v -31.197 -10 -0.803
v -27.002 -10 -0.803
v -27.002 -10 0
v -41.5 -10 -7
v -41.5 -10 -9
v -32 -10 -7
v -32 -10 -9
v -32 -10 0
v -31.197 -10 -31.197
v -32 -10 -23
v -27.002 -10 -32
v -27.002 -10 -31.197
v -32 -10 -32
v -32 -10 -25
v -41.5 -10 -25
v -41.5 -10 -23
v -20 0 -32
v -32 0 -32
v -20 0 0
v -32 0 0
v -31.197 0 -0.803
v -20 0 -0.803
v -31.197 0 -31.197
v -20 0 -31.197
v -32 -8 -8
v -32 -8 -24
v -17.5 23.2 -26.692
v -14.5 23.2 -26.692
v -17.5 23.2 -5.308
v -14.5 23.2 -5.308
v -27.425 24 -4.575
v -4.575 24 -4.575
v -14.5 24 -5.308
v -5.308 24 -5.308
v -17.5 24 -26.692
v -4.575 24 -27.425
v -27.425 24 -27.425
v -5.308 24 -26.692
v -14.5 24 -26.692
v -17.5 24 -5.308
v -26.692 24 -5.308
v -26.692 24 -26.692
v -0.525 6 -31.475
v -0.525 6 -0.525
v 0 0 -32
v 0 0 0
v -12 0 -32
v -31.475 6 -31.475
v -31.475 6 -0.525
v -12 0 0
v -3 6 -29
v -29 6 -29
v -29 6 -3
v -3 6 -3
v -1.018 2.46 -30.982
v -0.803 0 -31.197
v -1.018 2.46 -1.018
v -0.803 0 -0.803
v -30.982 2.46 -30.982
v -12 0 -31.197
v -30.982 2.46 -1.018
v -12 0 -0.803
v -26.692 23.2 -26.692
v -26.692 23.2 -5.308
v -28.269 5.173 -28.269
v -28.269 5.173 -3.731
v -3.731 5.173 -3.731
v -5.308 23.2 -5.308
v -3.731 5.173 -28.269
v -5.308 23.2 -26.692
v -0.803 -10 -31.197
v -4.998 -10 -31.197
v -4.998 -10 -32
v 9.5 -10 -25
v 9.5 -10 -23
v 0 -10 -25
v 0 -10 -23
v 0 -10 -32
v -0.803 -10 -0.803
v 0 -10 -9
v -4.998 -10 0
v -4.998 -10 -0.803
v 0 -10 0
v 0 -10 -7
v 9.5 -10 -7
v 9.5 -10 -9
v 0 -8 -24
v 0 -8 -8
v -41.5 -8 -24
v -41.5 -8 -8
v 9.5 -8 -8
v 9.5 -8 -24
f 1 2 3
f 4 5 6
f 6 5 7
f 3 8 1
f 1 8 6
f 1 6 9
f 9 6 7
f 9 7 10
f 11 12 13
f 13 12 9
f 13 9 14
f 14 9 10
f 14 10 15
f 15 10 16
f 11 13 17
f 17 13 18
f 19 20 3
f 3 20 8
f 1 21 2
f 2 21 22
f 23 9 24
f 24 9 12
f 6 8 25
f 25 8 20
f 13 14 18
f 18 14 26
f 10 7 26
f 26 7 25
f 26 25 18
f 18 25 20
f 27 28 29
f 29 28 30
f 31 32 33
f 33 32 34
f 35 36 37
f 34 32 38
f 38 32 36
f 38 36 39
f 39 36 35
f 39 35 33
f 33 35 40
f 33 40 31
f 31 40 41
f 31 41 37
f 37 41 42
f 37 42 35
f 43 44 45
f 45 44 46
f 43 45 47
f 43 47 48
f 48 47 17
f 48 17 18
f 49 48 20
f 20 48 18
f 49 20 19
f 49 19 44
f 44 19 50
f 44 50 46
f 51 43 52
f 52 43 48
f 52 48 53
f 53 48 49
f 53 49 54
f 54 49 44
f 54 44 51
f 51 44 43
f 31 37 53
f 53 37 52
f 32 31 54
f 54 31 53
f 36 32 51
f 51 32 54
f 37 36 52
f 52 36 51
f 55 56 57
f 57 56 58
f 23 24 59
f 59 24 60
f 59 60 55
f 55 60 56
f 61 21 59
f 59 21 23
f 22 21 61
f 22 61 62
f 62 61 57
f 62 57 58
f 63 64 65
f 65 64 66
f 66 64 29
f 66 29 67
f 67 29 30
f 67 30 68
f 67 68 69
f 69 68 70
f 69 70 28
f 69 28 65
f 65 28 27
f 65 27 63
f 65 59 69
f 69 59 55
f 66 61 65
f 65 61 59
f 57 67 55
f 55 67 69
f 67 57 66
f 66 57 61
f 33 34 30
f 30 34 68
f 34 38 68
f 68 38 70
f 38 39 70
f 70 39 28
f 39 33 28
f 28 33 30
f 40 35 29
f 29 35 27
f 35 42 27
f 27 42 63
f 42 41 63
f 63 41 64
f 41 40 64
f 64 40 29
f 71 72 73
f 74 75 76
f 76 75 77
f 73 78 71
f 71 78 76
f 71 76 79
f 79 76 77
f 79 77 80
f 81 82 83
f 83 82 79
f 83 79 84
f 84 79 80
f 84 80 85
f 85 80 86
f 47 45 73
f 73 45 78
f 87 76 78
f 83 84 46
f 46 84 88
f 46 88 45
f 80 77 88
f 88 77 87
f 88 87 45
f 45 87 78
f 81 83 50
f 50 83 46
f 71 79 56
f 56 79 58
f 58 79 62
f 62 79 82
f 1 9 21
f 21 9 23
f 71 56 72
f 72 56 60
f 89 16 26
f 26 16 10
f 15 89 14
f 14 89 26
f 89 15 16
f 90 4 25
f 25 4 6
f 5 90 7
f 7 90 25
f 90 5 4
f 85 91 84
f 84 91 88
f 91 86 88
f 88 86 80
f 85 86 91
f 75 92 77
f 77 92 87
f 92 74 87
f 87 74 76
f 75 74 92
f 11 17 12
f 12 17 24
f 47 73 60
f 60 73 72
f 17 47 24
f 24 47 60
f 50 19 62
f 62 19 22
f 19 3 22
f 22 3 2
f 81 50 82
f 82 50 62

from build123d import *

# Parameters (mm, degrees)
SKETCH1_W           = 32
SKETCH1_H           = 32
BOSS_EXTRUDE1_DEPTH = 6
BOSS_EXTRUDE1_TAPER = 5
SKETCH2_W           = 26
SKETCH2_H           = 26
BOSS_EXTRUDE2_DEPTH = 18
BOSS_EXTRUDE2_TAPER = 5
SHELL1_T            = -0.8
CHAMFER1_SIZE       = 2.5
CHAMFER1_SIZE_2     = 2.750157169
SKETCH3_W           = 9.192139117
SKETCH3_H           = 21.384278234
CUT_EXTRUDE1_DEPTH  = 51.855088412
SKETCH4_W           = 32
SKETCH4_H           = 32
SKETCH4_W_2         = 30.39388826
SKETCH4_H_2         = 30.39388826
BOSS_EXTRUDE3_DEPTH = 10
BOSS_EXTRUDE4_DEPTH = 9.5
BOSS_EXTRUDE5_START = -32
BOSS_EXTRUDE5_DEPTH = 9.5
CUT_EXTRUDE2_DEPTH  = 58.638962614


with BuildPart() as part:
    # Sketch1 → Boss-Extrude1 (new body)
    with BuildSketch(Plane(origin=(0, 0, 0), x_dir=(1, 0, 0), z_dir=(0, 1, 0))):
        with Locations((-16, 16)):
            Rectangle(SKETCH1_W, SKETCH1_H)
    extrude(amount=BOSS_EXTRUDE1_DEPTH, taper=BOSS_EXTRUDE1_TAPER)

    # Sketch2 → Boss-Extrude2 (add)
    with BuildSketch(Plane(origin=(0, 6, 0), x_dir=(1, 0, 0), z_dir=(0, 1, 0))):
        with Locations((-16, 16)):
            Rectangle(SKETCH2_W, SKETCH2_H)
    extrude(amount=BOSS_EXTRUDE2_DEPTH, taper=BOSS_EXTRUDE2_TAPER)

    # Shell1
    shell1_openings = [part.faces().sort_by_distance(p)[0] for p in [
        (-16, 0, -16),
    ]]
    offset(amount=SHELL1_T, openings=shell1_openings, kind=Kind.INTERSECTION)

    # Chamfer1
    # the kernel refuses this chamfer: 2.750157169, 2.5 mm, written as the material it adds along each edge
    with BuildSketch(Plane(origin=(5.830274952, 5.2, -1.25799692), x_dir=(0, 0.030161850139926293, -0.9995450278982617), z_dir=(-1, 0, 0))) as chamfer1_piece_1_section:
        Polygon((CHAMFER1_SIZE * 0.999545027898, CHAMFER1_SIZE * 0.0301618501399), (-CHAMFER1_SIZE_2 * 0.117163164513, CHAMFER1_SIZE_2 * 0.993112678869), (0, 0), align=None)
    chamfer1_piece_1 = extrude(amount=43.660549905, mode=Mode.PRIVATE)
    chamfer1_piece_1 = split(chamfer1_piece_1, bisect_by=Plane(origin=(-1.2737044, 5.379537315, -3.779154262), z_dir=(-0.9961946980917455, -0.08715574274765792, 0)), keep=Keep.TOP, mode=Mode.PRIVATE)
    chamfer1_piece_1 = split(chamfer1_piece_1, bisect_by=Plane(origin=(-3.729971497, 5.164641789, -3.779154262), z_dir=(0.9961946980917455, 0.08715574274765821, 0)), keep=Keep.TOP, mode=Mode.PRIVATE)
    chamfer1_piece_1 = split(chamfer1_piece_1, bisect_by=Plane(origin=(-2.501837948, 5.275543614, -3.739674149), z_dir=(0, -0.08715574274765829, -0.9961946980917455)), keep=Keep.TOP, mode=Mode.PRIVATE)
    add(chamfer1_piece_1)
    with BuildSketch(Plane(origin=(5.830274952, 5.2, -1.25799692), x_dir=(0, 0.030161850139926293, -0.9995450278982617), z_dir=(-1, 0, 0))) as chamfer1_piece_2_section:
        Polygon((CHAMFER1_SIZE * 0.999545027898, CHAMFER1_SIZE * 0.0301618501399), (-CHAMFER1_SIZE_2 * 0.117163164513, CHAMFER1_SIZE_2 * 0.993112678869), (0, 0), align=None)
    chamfer1_piece_2 = extrude(amount=43.660549905, mode=Mode.PRIVATE)
    chamfer1_piece_2 = split(chamfer1_piece_2, bisect_by=Plane(origin=(-1.187972058, 4.399612159, -1.99521412), z_dir=(-0.9961946980917455, -0.08715574274765792, 0)), keep=Keep.TOP, mode=Mode.PRIVATE)
    chamfer1_piece_2 = split(chamfer1_piece_2, bisect_by=Plane(origin=(-3.644239154, 4.184716633, -1.99521412), z_dir=(0.9961946980917455, 0.08715574274765821, 0)), keep=Keep.TOP, mode=Mode.PRIVATE)
    chamfer1_piece_2 = split(chamfer1_piece_2, bisect_by=Plane(origin=(-2.416105606, 4.148173113, -3.641042011), z_dir=(0, 0.08715574274765829, 0.9961946980917455)), keep=Keep.TOP, mode=Mode.PRIVATE)
    add(chamfer1_piece_2)
    with BuildSketch(Plane(origin=(5.830274952, 5.2, -1.25799692), x_dir=(0, 0.030161850139926293, -0.9995450278982617), z_dir=(-1, 0, 0))) as chamfer1_piece_3_section:
        Polygon((CHAMFER1_SIZE * 0.999545027898, CHAMFER1_SIZE * 0.0301618501399), (-CHAMFER1_SIZE_2 * 0.117163164513, CHAMFER1_SIZE_2 * 0.993112678869), (0, 0), align=None)
    chamfer1_piece_3 = extrude(amount=43.660549905, mode=Mode.PRIVATE)
    chamfer1_piece_3 = split(chamfer1_piece_3, bisect_by=Plane(origin=(-3.747130429, 5.360769289, -1.993289961), z_dir=(-0.9961946980917455, -0.08715574274765821, 0)), keep=Keep.TOP, mode=Mode.PRIVATE)
    chamfer1_piece_3 = split(chamfer1_piece_3, bisect_by=Plane(origin=(-16, 4.144649452, -3.64073373), z_dir=(0, 0.08715574274765829, 0.9961946980917455)), keep=Keep.TOP, mode=Mode.PRIVATE)
    chamfer1_piece_3 = split(chamfer1_piece_3, bisect_by=Plane(origin=(-28.252869571, 5.360769289, -1.993289961), z_dir=(0.9961946980917455, -0.08715574274765829, 0)), keep=Keep.TOP, mode=Mode.PRIVATE)
    add(chamfer1_piece_3)
    with BuildSketch(Plane(origin=(5.830274952, 5.2, -1.25799692), x_dir=(0, 0.030161850139926293, -0.9995450278982617), z_dir=(-1, 0, 0))) as chamfer1_piece_4_section:
        Polygon((CHAMFER1_SIZE * 0.999545027898, CHAMFER1_SIZE * 0.0301618501399), (-CHAMFER1_SIZE_2 * 0.117163164513, CHAMFER1_SIZE_2 * 0.993112678869), (0, 0), align=None)
    chamfer1_piece_4 = extrude(amount=43.660549905, mode=Mode.PRIVATE)
    chamfer1_piece_4 = split(chamfer1_piece_4, bisect_by=Plane(origin=(-29.498162052, 5.275543614, -3.739674149), z_dir=(0, -0.08715574274765829, -0.9961946980917455)), keep=Keep.TOP, mode=Mode.PRIVATE)
    chamfer1_piece_4 = split(chamfer1_piece_4, bisect_by=Plane(origin=(-28.270028503, 5.164641789, -3.779154262), z_dir=(-0.9961946980917455, 0.08715574274765829, 0)), keep=Keep.TOP, mode=Mode.PRIVATE)
    chamfer1_piece_4 = split(chamfer1_piece_4, bisect_by=Plane(origin=(-30.7262956, 5.379537315, -3.779154262), z_dir=(0.9961946980917455, -0.08715574274765851, 0)), keep=Keep.TOP, mode=Mode.PRIVATE)
    add(chamfer1_piece_4)
    with BuildSketch(Plane(origin=(5.830274952, 5.2, -1.25799692), x_dir=(0, 0.030161850139926293, -0.9995450278982617), z_dir=(-1, 0, 0))) as chamfer1_piece_5_section:
        Polygon((CHAMFER1_SIZE * 0.999545027898, CHAMFER1_SIZE * 0.0301618501399), (-CHAMFER1_SIZE_2 * 0.117163164513, CHAMFER1_SIZE_2 * 0.993112678869), (0, 0), align=None)
    chamfer1_piece_5 = extrude(amount=43.660549905, mode=Mode.PRIVATE)
    chamfer1_piece_5 = split(chamfer1_piece_5, bisect_by=Plane(origin=(-29.583894394, 4.148173113, -3.641042011), z_dir=(0, 0.08715574274765829, 0.9961946980917455)), keep=Keep.TOP, mode=Mode.PRIVATE)
    chamfer1_piece_5 = split(chamfer1_piece_5, bisect_by=Plane(origin=(-28.355760846, 4.184716633, -1.99521412), z_dir=(-0.9961946980917455, 0.08715574274765829, 0)), keep=Keep.TOP, mode=Mode.PRIVATE)
    chamfer1_piece_5 = split(chamfer1_piece_5, bisect_by=Plane(origin=(-30.812027942, 4.399612159, -1.99521412), z_dir=(0.9961946980917455, -0.08715574274765851, 0)), keep=Keep.TOP, mode=Mode.PRIVATE)
    add(chamfer1_piece_5)
    with BuildSketch(Plane(origin=(-30.74200308, 5.2, 5.830274952), x_dir=(0.9995450278982617, 0.030161850139926356, 0), z_dir=(0, 0, -1))) as chamfer1_piece_6_section:
        Polygon((CHAMFER1_SIZE * 0.999545027898, CHAMFER1_SIZE * 0.0301618501399), (-CHAMFER1_SIZE_2 * 0.117163164513, CHAMFER1_SIZE_2 * 0.993112678869), (0, 0), align=None)
    chamfer1_piece_6 = extrude(amount=43.660549905, mode=Mode.PRIVATE)
    chamfer1_piece_6 = split(chamfer1_piece_6, bisect_by=Plane(origin=(-28.220845738, 5.164641789, -3.729971497), z_dir=(0, 0.08715574274765829, 0.9961946980917455)), keep=Keep.TOP, mode=Mode.PRIVATE)
    chamfer1_piece_6 = split(chamfer1_piece_6, bisect_by=Plane(origin=(-28.260325851, 5.275543614, -2.501837948), z_dir=(0.9961946980917455, -0.08715574274765829, 0)), keep=Keep.TOP, mode=Mode.PRIVATE)
    chamfer1_piece_6 = split(chamfer1_piece_6, bisect_by=Plane(origin=(-28.220845738, 5.379537315, -1.2737044), z_dir=(0, -0.08715574274765792, -0.9961946980917455)), keep=Keep.TOP, mode=Mode.PRIVATE)
    add(chamfer1_piece_6)
    with BuildSketch(Plane(origin=(-30.74200308, 5.2, 5.830274952), x_dir=(0.9995450278982617, 0.030161850139926356, 0), z_dir=(0, 0, -1))) as chamfer1_piece_7_section:
        Polygon((CHAMFER1_SIZE * 0.999545027898, CHAMFER1_SIZE * 0.0301618501399), (-CHAMFER1_SIZE_2 * 0.117163164513, CHAMFER1_SIZE_2 * 0.993112678869), (0, 0), align=None)
    chamfer1_piece_7 = extrude(amount=43.660549905, mode=Mode.PRIVATE)
    chamfer1_piece_7 = split(chamfer1_piece_7, bisect_by=Plane(origin=(-30.00478588, 4.184716633, -3.644239154), z_dir=(0, 0.08715574274765829, 0.9961946980917455)), keep=Keep.TOP, mode=Mode.PRIVATE)
    chamfer1_piece_7 = split(chamfer1_piece_7, bisect_by=Plane(origin=(-28.358957989, 4.148173113, -2.416105606), z_dir=(-0.9961946980917455, 0.08715574274765829, 0)), keep=Keep.TOP, mode=Mode.PRIVATE)
    chamfer1_piece_7 = split(chamfer1_piece_7, bisect_by=Plane(origin=(-30.00478588, 4.399612159, -1.187972058), z_dir=(0, -0.08715574274765792, -0.9961946980917455)), keep=Keep.TOP, mode=Mode.PRIVATE)
    add(chamfer1_piece_7)
    with BuildSketch(Plane(origin=(-30.74200308, 5.2, 5.830274952), x_dir=(0.9995450278982617, 0.030161850139926356, 0), z_dir=(0, 0, -1))) as chamfer1_piece_8_section:
        Polygon((CHAMFER1_SIZE * 0.999545027898, CHAMFER1_SIZE * 0.0301618501399), (-CHAMFER1_SIZE_2 * 0.117163164513, CHAMFER1_SIZE_2 * 0.993112678869), (0, 0), align=None)
    chamfer1_piece_8 = extrude(amount=43.660549905, mode=Mode.PRIVATE)
    chamfer1_piece_8 = split(chamfer1_piece_8, bisect_by=Plane(origin=(-30.006710039, 5.360769289, -28.252869571), z_dir=(0, -0.08715574274765829, 0.9961946980917455)), keep=Keep.TOP, mode=Mode.PRIVATE)
    chamfer1_piece_8 = split(chamfer1_piece_8, bisect_by=Plane(origin=(-30.006710039, 5.360769289, -3.747130429), z_dir=(0, -0.08715574274765829, -0.9961946980917455)), keep=Keep.TOP, mode=Mode.PRIVATE)
    chamfer1_piece_8 = split(chamfer1_piece_8, bisect_by=Plane(origin=(-28.35926627, 4.144649452, -16), z_dir=(-0.9961946980917455, 0.08715574274765829, 0)), keep=Keep.TOP, mode=Mode.PRIVATE)
    add(chamfer1_piece_8)
    with BuildSketch(Plane(origin=(-30.74200308, 5.2, 5.830274952), x_dir=(0.9995450278982617, 0.030161850139926356, 0), z_dir=(0, 0, -1))) as chamfer1_piece_9_section:
        Polygon((CHAMFER1_SIZE * 0.999545027898, CHAMFER1_SIZE * 0.0301618501399), (-CHAMFER1_SIZE_2 * 0.117163164513, CHAMFER1_SIZE_2 * 0.993112678869), (0, 0), align=None)
    chamfer1_piece_9 = extrude(amount=43.660549905, mode=Mode.PRIVATE)
    chamfer1_piece_9 = split(chamfer1_piece_9, bisect_by=Plane(origin=(-28.220845738, 5.379537315, -30.7262956), z_dir=(0, -0.08715574274765836, 0.9961946980917455)), keep=Keep.TOP, mode=Mode.PRIVATE)
    chamfer1_piece_9 = split(chamfer1_piece_9, bisect_by=Plane(origin=(-28.220845738, 5.164641789, -28.270028503), z_dir=(0, 0.08715574274765829, -0.9961946980917455)), keep=Keep.TOP, mode=Mode.PRIVATE)
    chamfer1_piece_9 = split(chamfer1_piece_9, bisect_by=Plane(origin=(-28.260325851, 5.275543614, -29.498162052), z_dir=(0.9961946980917455, -0.08715574274765829, 0)), keep=Keep.TOP, mode=Mode.PRIVATE)
    add(chamfer1_piece_9)
    with BuildSketch(Plane(origin=(-30.74200308, 5.2, 5.830274952), x_dir=(0.9995450278982617, 0.030161850139926356, 0), z_dir=(0, 0, -1))) as chamfer1_piece_10_section:
        Polygon((CHAMFER1_SIZE * 0.999545027898, CHAMFER1_SIZE * 0.0301618501399), (-CHAMFER1_SIZE_2 * 0.117163164513, CHAMFER1_SIZE_2 * 0.993112678869), (0, 0), align=None)
    chamfer1_piece_10 = extrude(amount=43.660549905, mode=Mode.PRIVATE)
    chamfer1_piece_10 = split(chamfer1_piece_10, bisect_by=Plane(origin=(-30.00478588, 4.399612159, -30.812027942), z_dir=(0, -0.08715574274765836, 0.9961946980917455)), keep=Keep.TOP, mode=Mode.PRIVATE)
    chamfer1_piece_10 = split(chamfer1_piece_10, bisect_by=Plane(origin=(-30.00478588, 4.184716633, -28.355760846), z_dir=(0, 0.08715574274765829, -0.9961946980917455)), keep=Keep.TOP, mode=Mode.PRIVATE)
    chamfer1_piece_10 = split(chamfer1_piece_10, bisect_by=Plane(origin=(-28.358957989, 4.148173113, -29.583894394), z_dir=(-0.9961946980917455, 0.08715574274765829, 0)), keep=Keep.TOP, mode=Mode.PRIVATE)
    add(chamfer1_piece_10)
    with BuildSketch(Plane(origin=(5.830274952, 5.2, -30.74200308), x_dir=(0, -0.9937112432628153, -0.11197305485280758), z_dir=(-1, 0, 0))) as chamfer1_piece_11_section:
        Polygon((CHAMFER1_SIZE_2 * 0.99968896676, CHAMFER1_SIZE_2 * 0.0249393220908), (-CHAMFER1_SIZE * 0.111973054853, CHAMFER1_SIZE * 0.993711243263), (0, 0), align=None)
    chamfer1_piece_11 = extrude(amount=43.660549905, mode=Mode.PRIVATE)
    chamfer1_piece_11 = split(chamfer1_piece_11, bisect_by=Plane(origin=(-1.187972058, 4.399612159, -30.00478588), z_dir=(-0.9961946980917455, -0.08715574274765792, 0)), keep=Keep.TOP, mode=Mode.PRIVATE)
    chamfer1_piece_11 = split(chamfer1_piece_11, bisect_by=Plane(origin=(-2.416105606, 4.148173113, -28.358957989), z_dir=(0, 0.08715574274765829, -0.9961946980917455)), keep=Keep.TOP, mode=Mode.PRIVATE)
    chamfer1_piece_11 = split(chamfer1_piece_11, bisect_by=Plane(origin=(-3.644239154, 4.184716633, -30.00478588), z_dir=(0.9961946980917455, 0.08715574274765821, 0)), keep=Keep.TOP, mode=Mode.PRIVATE)
    add(chamfer1_piece_11)
    with BuildSketch(Plane(origin=(5.830274952, 5.2, -30.74200308), x_dir=(0, -0.9937112432628153, -0.11197305485280758), z_dir=(-1, 0, 0))) as chamfer1_piece_12_section:
        Polygon((CHAMFER1_SIZE_2 * 0.99968896676, CHAMFER1_SIZE_2 * 0.0249393220908), (-CHAMFER1_SIZE * 0.111973054853, CHAMFER1_SIZE * 0.993711243263), (0, 0), align=None)
    chamfer1_piece_12 = extrude(amount=43.660549905, mode=Mode.PRIVATE)
    chamfer1_piece_12 = split(chamfer1_piece_12, bisect_by=Plane(origin=(-1.2737044, 5.379537315, -28.220845738), z_dir=(-0.9961946980917455, -0.08715574274765792, 0)), keep=Keep.TOP, mode=Mode.PRIVATE)
    chamfer1_piece_12 = split(chamfer1_piece_12, bisect_by=Plane(origin=(-2.501837948, 5.275543614, -28.260325851), z_dir=(0, -0.08715574274765829, 0.9961946980917455)), keep=Keep.TOP, mode=Mode.PRIVATE)
    chamfer1_piece_12 = split(chamfer1_piece_12, bisect_by=Plane(origin=(-3.729971497, 5.164641789, -28.220845738), z_dir=(0.9961946980917455, 0.08715574274765821, 0)), keep=Keep.TOP, mode=Mode.PRIVATE)
    add(chamfer1_piece_12)
    with BuildSketch(Plane(origin=(5.830274952, 5.2, -30.74200308), x_dir=(0, -0.9937112432628153, -0.11197305485280758), z_dir=(-1, 0, 0))) as chamfer1_piece_13_section:
        Polygon((CHAMFER1_SIZE_2 * 0.99968896676, CHAMFER1_SIZE_2 * 0.0249393220908), (-CHAMFER1_SIZE * 0.111973054853, CHAMFER1_SIZE * 0.993711243263), (0, 0), align=None)
    chamfer1_piece_13 = extrude(amount=43.660549905, mode=Mode.PRIVATE)
    chamfer1_piece_13 = split(chamfer1_piece_13, bisect_by=Plane(origin=(-16, 4.144649452, -28.35926627), z_dir=(0, 0.08715574274765829, -0.9961946980917455)), keep=Keep.TOP, mode=Mode.PRIVATE)
    chamfer1_piece_13 = split(chamfer1_piece_13, bisect_by=Plane(origin=(-3.747130429, 5.360769289, -30.006710039), z_dir=(-0.9961946980917455, -0.08715574274765821, 0)), keep=Keep.TOP, mode=Mode.PRIVATE)
    chamfer1_piece_13 = split(chamfer1_piece_13, bisect_by=Plane(origin=(-28.252869571, 5.360769289, -30.006710039), z_dir=(0.9961946980917455, -0.08715574274765829, 0)), keep=Keep.TOP, mode=Mode.PRIVATE)
    add(chamfer1_piece_13)
    with BuildSketch(Plane(origin=(5.830274952, 5.2, -30.74200308), x_dir=(0, -0.9937112432628153, -0.11197305485280758), z_dir=(-1, 0, 0))) as chamfer1_piece_14_section:
        Polygon((CHAMFER1_SIZE_2 * 0.99968896676, CHAMFER1_SIZE_2 * 0.0249393220908), (-CHAMFER1_SIZE * 0.111973054853, CHAMFER1_SIZE * 0.993711243263), (0, 0), align=None)
    chamfer1_piece_14 = extrude(amount=43.660549905, mode=Mode.PRIVATE)
    chamfer1_piece_14 = split(chamfer1_piece_14, bisect_by=Plane(origin=(-30.812027942, 4.399612159, -30.00478588), z_dir=(0.9961946980917455, -0.08715574274765851, 0)), keep=Keep.TOP, mode=Mode.PRIVATE)
    chamfer1_piece_14 = split(chamfer1_piece_14, bisect_by=Plane(origin=(-29.583894394, 4.148173113, -28.358957989), z_dir=(0, 0.08715574274765829, -0.9961946980917455)), keep=Keep.TOP, mode=Mode.PRIVATE)
    chamfer1_piece_14 = split(chamfer1_piece_14, bisect_by=Plane(origin=(-28.355760846, 4.184716633, -30.00478588), z_dir=(-0.9961946980917455, 0.08715574274765829, 0)), keep=Keep.TOP, mode=Mode.PRIVATE)
    add(chamfer1_piece_14)
    with BuildSketch(Plane(origin=(5.830274952, 5.2, -30.74200308), x_dir=(0, -0.9937112432628153, -0.11197305485280758), z_dir=(-1, 0, 0))) as chamfer1_piece_15_section:
        Polygon((CHAMFER1_SIZE_2 * 0.99968896676, CHAMFER1_SIZE_2 * 0.0249393220908), (-CHAMFER1_SIZE * 0.111973054853, CHAMFER1_SIZE * 0.993711243263), (0, 0), align=None)
    chamfer1_piece_15 = extrude(amount=43.660549905, mode=Mode.PRIVATE)
    chamfer1_piece_15 = split(chamfer1_piece_15, bisect_by=Plane(origin=(-30.7262956, 5.379537315, -28.220845738), z_dir=(0.9961946980917455, -0.08715574274765851, 0)), keep=Keep.TOP, mode=Mode.PRIVATE)
    chamfer1_piece_15 = split(chamfer1_piece_15, bisect_by=Plane(origin=(-29.498162052, 5.275543614, -28.260325851), z_dir=(0, -0.08715574274765829, 0.9961946980917455)), keep=Keep.TOP, mode=Mode.PRIVATE)
    chamfer1_piece_15 = split(chamfer1_piece_15, bisect_by=Plane(origin=(-28.270028503, 5.164641789, -28.220845738), z_dir=(-0.9961946980917455, 0.08715574274765829, 0)), keep=Keep.TOP, mode=Mode.PRIVATE)
    add(chamfer1_piece_15)
    with BuildSketch(Plane(origin=(-1.25799692, 5.2, 5.830274952), x_dir=(0.11197305485280797, -0.9937112432628151, 0), z_dir=(0, 0, -1))) as chamfer1_piece_16_section:
        Polygon((CHAMFER1_SIZE_2 * 0.99968896676, CHAMFER1_SIZE_2 * 0.0249393220908), (-CHAMFER1_SIZE * 0.111973054853, CHAMFER1_SIZE * 0.993711243263), (0, 0), align=None)
    chamfer1_piece_16 = extrude(amount=43.660549905, mode=Mode.PRIVATE)
    chamfer1_piece_16 = split(chamfer1_piece_16, bisect_by=Plane(origin=(-1.99521412, 4.399612159, -1.187972058), z_dir=(0, -0.08715574274765792, -0.9961946980917455)), keep=Keep.TOP, mode=Mode.PRIVATE)
    chamfer1_piece_16 = split(chamfer1_piece_16, bisect_by=Plane(origin=(-3.641042011, 4.148173113, -2.416105606), z_dir=(0.9961946980917455, 0.08715574274765821, 0)), keep=Keep.TOP, mode=Mode.PRIVATE)
    chamfer1_piece_16 = split(chamfer1_piece_16, bisect_by=Plane(origin=(-1.99521412, 4.184716633, -3.644239154), z_dir=(0, 0.08715574274765829, 0.9961946980917455)), keep=Keep.TOP, mode=Mode.PRIVATE)
    add(chamfer1_piece_16)
    with BuildSketch(Plane(origin=(-1.25799692, 5.2, 5.830274952), x_dir=(0.11197305485280797, -0.9937112432628151, 0), z_dir=(0, 0, -1))) as chamfer1_piece_17_section:
        Polygon((CHAMFER1_SIZE_2 * 0.99968896676, CHAMFER1_SIZE_2 * 0.0249393220908), (-CHAMFER1_SIZE * 0.111973054853, CHAMFER1_SIZE * 0.993711243263), (0, 0), align=None)
    chamfer1_piece_17 = extrude(amount=43.660549905, mode=Mode.PRIVATE)
    chamfer1_piece_17 = split(chamfer1_piece_17, bisect_by=Plane(origin=(-3.779154262, 5.379537315, -1.2737044), z_dir=(0, -0.08715574274765792, -0.9961946980917455)), keep=Keep.TOP, mode=Mode.PRIVATE)
    chamfer1_piece_17 = split(chamfer1_piece_17, bisect_by=Plane(origin=(-3.739674149, 5.275543614, -2.501837948), z_dir=(-0.9961946980917455, -0.08715574274765821, 0)), keep=Keep.TOP, mode=Mode.PRIVATE)
    chamfer1_piece_17 = split(chamfer1_piece_17, bisect_by=Plane(origin=(-3.779154262, 5.164641789, -3.729971497), z_dir=(0, 0.08715574274765829, 0.9961946980917455)), keep=Keep.TOP, mode=Mode.PRIVATE)
    add(chamfer1_piece_17)
    with BuildSketch(Plane(origin=(-1.25799692, 5.2, 5.830274952), x_dir=(0.11197305485280797, -0.9937112432628151, 0), z_dir=(0, 0, -1))) as chamfer1_piece_18_section:
        Polygon((CHAMFER1_SIZE_2 * 0.99968896676, CHAMFER1_SIZE_2 * 0.0249393220908), (-CHAMFER1_SIZE * 0.111973054853, CHAMFER1_SIZE * 0.993711243263), (0, 0), align=None)
    chamfer1_piece_18 = extrude(amount=43.660549905, mode=Mode.PRIVATE)
    chamfer1_piece_18 = split(chamfer1_piece_18, bisect_by=Plane(origin=(-1.993289961, 5.360769289, -28.252869571), z_dir=(0, -0.08715574274765829, 0.9961946980917455)), keep=Keep.TOP, mode=Mode.PRIVATE)
    chamfer1_piece_18 = split(chamfer1_piece_18, bisect_by=Plane(origin=(-3.64073373, 4.144649452, -16), z_dir=(0.9961946980917455, 0.08715574274765821, 0)), keep=Keep.TOP, mode=Mode.PRIVATE)
    chamfer1_piece_18 = split(chamfer1_piece_18, bisect_by=Plane(origin=(-1.993289961, 5.360769289, -3.747130429), z_dir=(0, -0.08715574274765829, -0.9961946980917455)), keep=Keep.TOP, mode=Mode.PRIVATE)
    add(chamfer1_piece_18)
    with BuildSketch(Plane(origin=(-1.25799692, 5.2, 5.830274952), x_dir=(0.11197305485280797, -0.9937112432628151, 0), z_dir=(0, 0, -1))) as chamfer1_piece_19_section:
        Polygon((CHAMFER1_SIZE_2 * 0.99968896676, CHAMFER1_SIZE_2 * 0.0249393220908), (-CHAMFER1_SIZE * 0.111973054853, CHAMFER1_SIZE * 0.993711243263), (0, 0), align=None)
    chamfer1_piece_19 = extrude(amount=43.660549905, mode=Mode.PRIVATE)
    chamfer1_piece_19 = split(chamfer1_piece_19, bisect_by=Plane(origin=(-1.99521412, 4.399612159, -30.812027942), z_dir=(0, -0.08715574274765836, 0.9961946980917455)), keep=Keep.TOP, mode=Mode.PRIVATE)
    chamfer1_piece_19 = split(chamfer1_piece_19, bisect_by=Plane(origin=(-1.99521412, 4.184716633, -28.355760846), z_dir=(0, 0.08715574274765829, -0.9961946980917455)), keep=Keep.TOP, mode=Mode.PRIVATE)
    chamfer1_piece_19 = split(chamfer1_piece_19, bisect_by=Plane(origin=(-3.641042011, 4.148173113, -29.583894394), z_dir=(0.9961946980917455, 0.08715574274765821, 0)), keep=Keep.TOP, mode=Mode.PRIVATE)
    add(chamfer1_piece_19)
    with BuildSketch(Plane(origin=(-1.25799692, 5.2, 5.830274952), x_dir=(0.11197305485280797, -0.9937112432628151, 0), z_dir=(0, 0, -1))) as chamfer1_piece_20_section:
        Polygon((CHAMFER1_SIZE_2 * 0.99968896676, CHAMFER1_SIZE_2 * 0.0249393220908), (-CHAMFER1_SIZE * 0.111973054853, CHAMFER1_SIZE * 0.993711243263), (0, 0), align=None)
    chamfer1_piece_20 = extrude(amount=43.660549905, mode=Mode.PRIVATE)
    chamfer1_piece_20 = split(chamfer1_piece_20, bisect_by=Plane(origin=(-3.779154262, 5.379537315, -30.7262956), z_dir=(0, -0.08715574274765836, 0.9961946980917455)), keep=Keep.TOP, mode=Mode.PRIVATE)
    chamfer1_piece_20 = split(chamfer1_piece_20, bisect_by=Plane(origin=(-3.779154262, 5.164641789, -28.270028503), z_dir=(0, 0.08715574274765829, -0.9961946980917455)), keep=Keep.TOP, mode=Mode.PRIVATE)
    chamfer1_piece_20 = split(chamfer1_piece_20, bisect_by=Plane(origin=(-3.739674149, 5.275543614, -29.498162052), z_dir=(-0.9961946980917455, -0.08715574274765821, 0)), keep=Keep.TOP, mode=Mode.PRIVATE)
    add(chamfer1_piece_20)

    # Sketch3 → Cut-Extrude1 (cut, through all)
    with BuildSketch(Plane.XZ.offset(-23.2)):
        with Locations((-22.096069558, -16)):
            Rectangle(SKETCH3_W, SKETCH3_H)
        with Locations((-9.903930442, -16)):
            Rectangle(SKETCH3_W, SKETCH3_H)
    extrude(amount=-CUT_EXTRUDE1_DEPTH, mode=Mode.SUBTRACT)

    # Sketch4 → Boss-Extrude3 (add)
    with BuildSketch(Plane.XZ):
        with Locations((-16, -16)):
            Rectangle(SKETCH4_W, SKETCH4_H)
        with Locations((-16, -16)):
            Rectangle(SKETCH4_W_2, SKETCH4_H_2, mode=Mode.SUBTRACT)
    extrude(amount=BOSS_EXTRUDE3_DEPTH)

    # Sketch5 → Boss-Extrude4 (add)
    with BuildSketch(Plane.ZY.offset(32)):
        Polygon((-24, -8), (-25, -10), (-23, -10), align=None)
        Polygon((-8, -8), (-9, -10), (-7, -10), align=None)
    extrude(amount=BOSS_EXTRUDE4_DEPTH)

    # Sketch5<3> → Boss-Extrude5 (add)
    with BuildSketch(Plane.ZY.offset(32).offset(BOSS_EXTRUDE5_START)):
        Polygon((-8, -8), (-9, -10), (-7, -10), align=None)
        Polygon((-24, -8), (-25, -10), (-23, -10), align=None)
    extrude(amount=-BOSS_EXTRUDE5_DEPTH)

    # Sketch6 → Cut-Extrude2 (cut, through all)
    with BuildSketch(Plane(origin=(0, 0, -32), x_dir=(-1, 0, 0), z_dir=(0, 0, -1))):
        Polygon((12, 0), (4.997924618, -10), (27.002075382, -10), (20, 0), align=None)
    extrude(amount=-CUT_EXTRUDE2_DEPTH, mode=Mode.SUBTRACT)


solid = part.part
